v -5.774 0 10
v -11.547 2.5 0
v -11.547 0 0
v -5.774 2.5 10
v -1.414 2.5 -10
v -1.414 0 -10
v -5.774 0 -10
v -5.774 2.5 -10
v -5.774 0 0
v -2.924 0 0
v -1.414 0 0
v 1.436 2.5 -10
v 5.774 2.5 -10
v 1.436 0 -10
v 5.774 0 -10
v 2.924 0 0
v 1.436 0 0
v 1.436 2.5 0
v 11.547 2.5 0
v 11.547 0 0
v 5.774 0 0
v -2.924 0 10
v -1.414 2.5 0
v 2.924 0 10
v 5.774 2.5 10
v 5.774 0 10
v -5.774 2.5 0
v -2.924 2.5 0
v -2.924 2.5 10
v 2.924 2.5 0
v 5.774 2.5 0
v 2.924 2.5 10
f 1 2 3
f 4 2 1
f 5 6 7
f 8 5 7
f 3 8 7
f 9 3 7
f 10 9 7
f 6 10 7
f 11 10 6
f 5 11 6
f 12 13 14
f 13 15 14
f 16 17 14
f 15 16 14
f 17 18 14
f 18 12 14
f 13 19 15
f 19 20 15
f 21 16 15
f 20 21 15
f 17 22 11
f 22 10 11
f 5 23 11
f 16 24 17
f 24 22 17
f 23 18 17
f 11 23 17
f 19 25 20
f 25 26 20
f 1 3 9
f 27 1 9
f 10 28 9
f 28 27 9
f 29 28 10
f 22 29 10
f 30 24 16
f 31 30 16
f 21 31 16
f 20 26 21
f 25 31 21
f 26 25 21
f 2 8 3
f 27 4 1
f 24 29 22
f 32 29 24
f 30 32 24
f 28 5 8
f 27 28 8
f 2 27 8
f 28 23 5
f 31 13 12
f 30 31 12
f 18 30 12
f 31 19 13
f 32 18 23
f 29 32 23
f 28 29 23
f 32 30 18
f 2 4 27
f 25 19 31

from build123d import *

# Parameters (mm, degrees)
BOSS_EXTRUDE1_DEPTH = 2.5
SKETCH5_W           = 2.85
SKETCH5_H           = 2.5
CUT_EXTRUDE3_DEPTH  = 10
SKETCH6_W           = 2.85
SKETCH6_H           = 2.5
CUT_EXTRUDE4_DEPTH  = 10
SKETCH7_W           = 2.85
SKETCH7_H           = 2.5
CUT_EXTRUDE5_DEPTH  = 10


with BuildPart() as part:
    # Sketch1 → Boss-Extrude1 (new body)
    with BuildSketch(Plane(origin=(0, 0, 0), x_dir=(1, 0, 0), z_dir=(0, 1, 0))):
        Polygon((11.547005384, 0), (5.773502692, 10), (-5.773502692, 10), (-11.547005384, 0), (-5.773502692, -10), (5.773502692, -10), align=None)
    extrude(amount=BOSS_EXTRUDE1_DEPTH)

    # Sketch5 → Cut-Extrude3 (cut)
    with BuildSketch(Plane.XY.offset(10)):
        with Locations((-4.348502692, 1.25)):
            Rectangle(SKETCH5_W, SKETCH5_H)
    extrude(amount=-CUT_EXTRUDE3_DEPTH, mode=Mode.SUBTRACT)

    # Sketch6 → Cut-Extrude4 (cut)
    with BuildSketch(Plane.XY.offset(10)):
        with Locations((4.348502692, 1.25)):
            Rectangle(SKETCH6_W, SKETCH6_H)
    extrude(amount=-CUT_EXTRUDE4_DEPTH, mode=Mode.SUBTRACT)

    # Sketch7 → Cut-Extrude5 (cut)
    with BuildSketch(Plane(origin=(0, 0, -10), x_dir=(-1, 0, 0), z_dir=(0, 0, -1))):
        with Locations((-0.011497308, 1.25)):
            Rectangle(SKETCH7_W, SKETCH7_H)
    extrude(amount=-CUT_EXTRUDE5_DEPTH, mode=Mode.SUBTRACT)


solid = part.part
